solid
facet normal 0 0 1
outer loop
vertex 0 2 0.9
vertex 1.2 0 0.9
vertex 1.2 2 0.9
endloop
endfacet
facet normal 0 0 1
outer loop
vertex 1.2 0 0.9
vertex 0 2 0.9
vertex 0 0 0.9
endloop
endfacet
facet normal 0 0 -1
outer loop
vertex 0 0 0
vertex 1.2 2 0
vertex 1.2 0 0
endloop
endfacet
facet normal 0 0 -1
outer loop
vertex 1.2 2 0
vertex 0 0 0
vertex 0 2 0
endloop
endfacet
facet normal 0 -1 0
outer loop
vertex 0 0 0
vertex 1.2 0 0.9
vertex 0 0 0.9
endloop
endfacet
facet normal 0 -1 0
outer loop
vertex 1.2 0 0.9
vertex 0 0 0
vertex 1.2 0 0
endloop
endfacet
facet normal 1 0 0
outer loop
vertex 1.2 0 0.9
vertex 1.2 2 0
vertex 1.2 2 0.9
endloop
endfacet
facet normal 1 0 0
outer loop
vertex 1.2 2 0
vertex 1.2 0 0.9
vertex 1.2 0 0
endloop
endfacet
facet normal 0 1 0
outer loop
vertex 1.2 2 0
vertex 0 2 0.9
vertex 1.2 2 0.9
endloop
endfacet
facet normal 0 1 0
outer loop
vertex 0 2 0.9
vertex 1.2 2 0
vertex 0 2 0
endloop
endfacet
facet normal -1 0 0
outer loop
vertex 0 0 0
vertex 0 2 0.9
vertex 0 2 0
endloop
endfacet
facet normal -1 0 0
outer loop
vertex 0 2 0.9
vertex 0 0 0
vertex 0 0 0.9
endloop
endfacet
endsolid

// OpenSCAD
/* Warning, this is a very basic generator with a lot of approximation 
input data : [VQFN, NDA, 1.2x2.0x0.9mm, 10, , B, C04-01029B]
generated by com.zoubworld.electronics.cad.model3d.Basic
Date : Sun Feb 15 10:50:49 CET 2026
*/

//body
color("black")
translate([0,0,0])
cube([1.2,2.0,0.9], center=false);
